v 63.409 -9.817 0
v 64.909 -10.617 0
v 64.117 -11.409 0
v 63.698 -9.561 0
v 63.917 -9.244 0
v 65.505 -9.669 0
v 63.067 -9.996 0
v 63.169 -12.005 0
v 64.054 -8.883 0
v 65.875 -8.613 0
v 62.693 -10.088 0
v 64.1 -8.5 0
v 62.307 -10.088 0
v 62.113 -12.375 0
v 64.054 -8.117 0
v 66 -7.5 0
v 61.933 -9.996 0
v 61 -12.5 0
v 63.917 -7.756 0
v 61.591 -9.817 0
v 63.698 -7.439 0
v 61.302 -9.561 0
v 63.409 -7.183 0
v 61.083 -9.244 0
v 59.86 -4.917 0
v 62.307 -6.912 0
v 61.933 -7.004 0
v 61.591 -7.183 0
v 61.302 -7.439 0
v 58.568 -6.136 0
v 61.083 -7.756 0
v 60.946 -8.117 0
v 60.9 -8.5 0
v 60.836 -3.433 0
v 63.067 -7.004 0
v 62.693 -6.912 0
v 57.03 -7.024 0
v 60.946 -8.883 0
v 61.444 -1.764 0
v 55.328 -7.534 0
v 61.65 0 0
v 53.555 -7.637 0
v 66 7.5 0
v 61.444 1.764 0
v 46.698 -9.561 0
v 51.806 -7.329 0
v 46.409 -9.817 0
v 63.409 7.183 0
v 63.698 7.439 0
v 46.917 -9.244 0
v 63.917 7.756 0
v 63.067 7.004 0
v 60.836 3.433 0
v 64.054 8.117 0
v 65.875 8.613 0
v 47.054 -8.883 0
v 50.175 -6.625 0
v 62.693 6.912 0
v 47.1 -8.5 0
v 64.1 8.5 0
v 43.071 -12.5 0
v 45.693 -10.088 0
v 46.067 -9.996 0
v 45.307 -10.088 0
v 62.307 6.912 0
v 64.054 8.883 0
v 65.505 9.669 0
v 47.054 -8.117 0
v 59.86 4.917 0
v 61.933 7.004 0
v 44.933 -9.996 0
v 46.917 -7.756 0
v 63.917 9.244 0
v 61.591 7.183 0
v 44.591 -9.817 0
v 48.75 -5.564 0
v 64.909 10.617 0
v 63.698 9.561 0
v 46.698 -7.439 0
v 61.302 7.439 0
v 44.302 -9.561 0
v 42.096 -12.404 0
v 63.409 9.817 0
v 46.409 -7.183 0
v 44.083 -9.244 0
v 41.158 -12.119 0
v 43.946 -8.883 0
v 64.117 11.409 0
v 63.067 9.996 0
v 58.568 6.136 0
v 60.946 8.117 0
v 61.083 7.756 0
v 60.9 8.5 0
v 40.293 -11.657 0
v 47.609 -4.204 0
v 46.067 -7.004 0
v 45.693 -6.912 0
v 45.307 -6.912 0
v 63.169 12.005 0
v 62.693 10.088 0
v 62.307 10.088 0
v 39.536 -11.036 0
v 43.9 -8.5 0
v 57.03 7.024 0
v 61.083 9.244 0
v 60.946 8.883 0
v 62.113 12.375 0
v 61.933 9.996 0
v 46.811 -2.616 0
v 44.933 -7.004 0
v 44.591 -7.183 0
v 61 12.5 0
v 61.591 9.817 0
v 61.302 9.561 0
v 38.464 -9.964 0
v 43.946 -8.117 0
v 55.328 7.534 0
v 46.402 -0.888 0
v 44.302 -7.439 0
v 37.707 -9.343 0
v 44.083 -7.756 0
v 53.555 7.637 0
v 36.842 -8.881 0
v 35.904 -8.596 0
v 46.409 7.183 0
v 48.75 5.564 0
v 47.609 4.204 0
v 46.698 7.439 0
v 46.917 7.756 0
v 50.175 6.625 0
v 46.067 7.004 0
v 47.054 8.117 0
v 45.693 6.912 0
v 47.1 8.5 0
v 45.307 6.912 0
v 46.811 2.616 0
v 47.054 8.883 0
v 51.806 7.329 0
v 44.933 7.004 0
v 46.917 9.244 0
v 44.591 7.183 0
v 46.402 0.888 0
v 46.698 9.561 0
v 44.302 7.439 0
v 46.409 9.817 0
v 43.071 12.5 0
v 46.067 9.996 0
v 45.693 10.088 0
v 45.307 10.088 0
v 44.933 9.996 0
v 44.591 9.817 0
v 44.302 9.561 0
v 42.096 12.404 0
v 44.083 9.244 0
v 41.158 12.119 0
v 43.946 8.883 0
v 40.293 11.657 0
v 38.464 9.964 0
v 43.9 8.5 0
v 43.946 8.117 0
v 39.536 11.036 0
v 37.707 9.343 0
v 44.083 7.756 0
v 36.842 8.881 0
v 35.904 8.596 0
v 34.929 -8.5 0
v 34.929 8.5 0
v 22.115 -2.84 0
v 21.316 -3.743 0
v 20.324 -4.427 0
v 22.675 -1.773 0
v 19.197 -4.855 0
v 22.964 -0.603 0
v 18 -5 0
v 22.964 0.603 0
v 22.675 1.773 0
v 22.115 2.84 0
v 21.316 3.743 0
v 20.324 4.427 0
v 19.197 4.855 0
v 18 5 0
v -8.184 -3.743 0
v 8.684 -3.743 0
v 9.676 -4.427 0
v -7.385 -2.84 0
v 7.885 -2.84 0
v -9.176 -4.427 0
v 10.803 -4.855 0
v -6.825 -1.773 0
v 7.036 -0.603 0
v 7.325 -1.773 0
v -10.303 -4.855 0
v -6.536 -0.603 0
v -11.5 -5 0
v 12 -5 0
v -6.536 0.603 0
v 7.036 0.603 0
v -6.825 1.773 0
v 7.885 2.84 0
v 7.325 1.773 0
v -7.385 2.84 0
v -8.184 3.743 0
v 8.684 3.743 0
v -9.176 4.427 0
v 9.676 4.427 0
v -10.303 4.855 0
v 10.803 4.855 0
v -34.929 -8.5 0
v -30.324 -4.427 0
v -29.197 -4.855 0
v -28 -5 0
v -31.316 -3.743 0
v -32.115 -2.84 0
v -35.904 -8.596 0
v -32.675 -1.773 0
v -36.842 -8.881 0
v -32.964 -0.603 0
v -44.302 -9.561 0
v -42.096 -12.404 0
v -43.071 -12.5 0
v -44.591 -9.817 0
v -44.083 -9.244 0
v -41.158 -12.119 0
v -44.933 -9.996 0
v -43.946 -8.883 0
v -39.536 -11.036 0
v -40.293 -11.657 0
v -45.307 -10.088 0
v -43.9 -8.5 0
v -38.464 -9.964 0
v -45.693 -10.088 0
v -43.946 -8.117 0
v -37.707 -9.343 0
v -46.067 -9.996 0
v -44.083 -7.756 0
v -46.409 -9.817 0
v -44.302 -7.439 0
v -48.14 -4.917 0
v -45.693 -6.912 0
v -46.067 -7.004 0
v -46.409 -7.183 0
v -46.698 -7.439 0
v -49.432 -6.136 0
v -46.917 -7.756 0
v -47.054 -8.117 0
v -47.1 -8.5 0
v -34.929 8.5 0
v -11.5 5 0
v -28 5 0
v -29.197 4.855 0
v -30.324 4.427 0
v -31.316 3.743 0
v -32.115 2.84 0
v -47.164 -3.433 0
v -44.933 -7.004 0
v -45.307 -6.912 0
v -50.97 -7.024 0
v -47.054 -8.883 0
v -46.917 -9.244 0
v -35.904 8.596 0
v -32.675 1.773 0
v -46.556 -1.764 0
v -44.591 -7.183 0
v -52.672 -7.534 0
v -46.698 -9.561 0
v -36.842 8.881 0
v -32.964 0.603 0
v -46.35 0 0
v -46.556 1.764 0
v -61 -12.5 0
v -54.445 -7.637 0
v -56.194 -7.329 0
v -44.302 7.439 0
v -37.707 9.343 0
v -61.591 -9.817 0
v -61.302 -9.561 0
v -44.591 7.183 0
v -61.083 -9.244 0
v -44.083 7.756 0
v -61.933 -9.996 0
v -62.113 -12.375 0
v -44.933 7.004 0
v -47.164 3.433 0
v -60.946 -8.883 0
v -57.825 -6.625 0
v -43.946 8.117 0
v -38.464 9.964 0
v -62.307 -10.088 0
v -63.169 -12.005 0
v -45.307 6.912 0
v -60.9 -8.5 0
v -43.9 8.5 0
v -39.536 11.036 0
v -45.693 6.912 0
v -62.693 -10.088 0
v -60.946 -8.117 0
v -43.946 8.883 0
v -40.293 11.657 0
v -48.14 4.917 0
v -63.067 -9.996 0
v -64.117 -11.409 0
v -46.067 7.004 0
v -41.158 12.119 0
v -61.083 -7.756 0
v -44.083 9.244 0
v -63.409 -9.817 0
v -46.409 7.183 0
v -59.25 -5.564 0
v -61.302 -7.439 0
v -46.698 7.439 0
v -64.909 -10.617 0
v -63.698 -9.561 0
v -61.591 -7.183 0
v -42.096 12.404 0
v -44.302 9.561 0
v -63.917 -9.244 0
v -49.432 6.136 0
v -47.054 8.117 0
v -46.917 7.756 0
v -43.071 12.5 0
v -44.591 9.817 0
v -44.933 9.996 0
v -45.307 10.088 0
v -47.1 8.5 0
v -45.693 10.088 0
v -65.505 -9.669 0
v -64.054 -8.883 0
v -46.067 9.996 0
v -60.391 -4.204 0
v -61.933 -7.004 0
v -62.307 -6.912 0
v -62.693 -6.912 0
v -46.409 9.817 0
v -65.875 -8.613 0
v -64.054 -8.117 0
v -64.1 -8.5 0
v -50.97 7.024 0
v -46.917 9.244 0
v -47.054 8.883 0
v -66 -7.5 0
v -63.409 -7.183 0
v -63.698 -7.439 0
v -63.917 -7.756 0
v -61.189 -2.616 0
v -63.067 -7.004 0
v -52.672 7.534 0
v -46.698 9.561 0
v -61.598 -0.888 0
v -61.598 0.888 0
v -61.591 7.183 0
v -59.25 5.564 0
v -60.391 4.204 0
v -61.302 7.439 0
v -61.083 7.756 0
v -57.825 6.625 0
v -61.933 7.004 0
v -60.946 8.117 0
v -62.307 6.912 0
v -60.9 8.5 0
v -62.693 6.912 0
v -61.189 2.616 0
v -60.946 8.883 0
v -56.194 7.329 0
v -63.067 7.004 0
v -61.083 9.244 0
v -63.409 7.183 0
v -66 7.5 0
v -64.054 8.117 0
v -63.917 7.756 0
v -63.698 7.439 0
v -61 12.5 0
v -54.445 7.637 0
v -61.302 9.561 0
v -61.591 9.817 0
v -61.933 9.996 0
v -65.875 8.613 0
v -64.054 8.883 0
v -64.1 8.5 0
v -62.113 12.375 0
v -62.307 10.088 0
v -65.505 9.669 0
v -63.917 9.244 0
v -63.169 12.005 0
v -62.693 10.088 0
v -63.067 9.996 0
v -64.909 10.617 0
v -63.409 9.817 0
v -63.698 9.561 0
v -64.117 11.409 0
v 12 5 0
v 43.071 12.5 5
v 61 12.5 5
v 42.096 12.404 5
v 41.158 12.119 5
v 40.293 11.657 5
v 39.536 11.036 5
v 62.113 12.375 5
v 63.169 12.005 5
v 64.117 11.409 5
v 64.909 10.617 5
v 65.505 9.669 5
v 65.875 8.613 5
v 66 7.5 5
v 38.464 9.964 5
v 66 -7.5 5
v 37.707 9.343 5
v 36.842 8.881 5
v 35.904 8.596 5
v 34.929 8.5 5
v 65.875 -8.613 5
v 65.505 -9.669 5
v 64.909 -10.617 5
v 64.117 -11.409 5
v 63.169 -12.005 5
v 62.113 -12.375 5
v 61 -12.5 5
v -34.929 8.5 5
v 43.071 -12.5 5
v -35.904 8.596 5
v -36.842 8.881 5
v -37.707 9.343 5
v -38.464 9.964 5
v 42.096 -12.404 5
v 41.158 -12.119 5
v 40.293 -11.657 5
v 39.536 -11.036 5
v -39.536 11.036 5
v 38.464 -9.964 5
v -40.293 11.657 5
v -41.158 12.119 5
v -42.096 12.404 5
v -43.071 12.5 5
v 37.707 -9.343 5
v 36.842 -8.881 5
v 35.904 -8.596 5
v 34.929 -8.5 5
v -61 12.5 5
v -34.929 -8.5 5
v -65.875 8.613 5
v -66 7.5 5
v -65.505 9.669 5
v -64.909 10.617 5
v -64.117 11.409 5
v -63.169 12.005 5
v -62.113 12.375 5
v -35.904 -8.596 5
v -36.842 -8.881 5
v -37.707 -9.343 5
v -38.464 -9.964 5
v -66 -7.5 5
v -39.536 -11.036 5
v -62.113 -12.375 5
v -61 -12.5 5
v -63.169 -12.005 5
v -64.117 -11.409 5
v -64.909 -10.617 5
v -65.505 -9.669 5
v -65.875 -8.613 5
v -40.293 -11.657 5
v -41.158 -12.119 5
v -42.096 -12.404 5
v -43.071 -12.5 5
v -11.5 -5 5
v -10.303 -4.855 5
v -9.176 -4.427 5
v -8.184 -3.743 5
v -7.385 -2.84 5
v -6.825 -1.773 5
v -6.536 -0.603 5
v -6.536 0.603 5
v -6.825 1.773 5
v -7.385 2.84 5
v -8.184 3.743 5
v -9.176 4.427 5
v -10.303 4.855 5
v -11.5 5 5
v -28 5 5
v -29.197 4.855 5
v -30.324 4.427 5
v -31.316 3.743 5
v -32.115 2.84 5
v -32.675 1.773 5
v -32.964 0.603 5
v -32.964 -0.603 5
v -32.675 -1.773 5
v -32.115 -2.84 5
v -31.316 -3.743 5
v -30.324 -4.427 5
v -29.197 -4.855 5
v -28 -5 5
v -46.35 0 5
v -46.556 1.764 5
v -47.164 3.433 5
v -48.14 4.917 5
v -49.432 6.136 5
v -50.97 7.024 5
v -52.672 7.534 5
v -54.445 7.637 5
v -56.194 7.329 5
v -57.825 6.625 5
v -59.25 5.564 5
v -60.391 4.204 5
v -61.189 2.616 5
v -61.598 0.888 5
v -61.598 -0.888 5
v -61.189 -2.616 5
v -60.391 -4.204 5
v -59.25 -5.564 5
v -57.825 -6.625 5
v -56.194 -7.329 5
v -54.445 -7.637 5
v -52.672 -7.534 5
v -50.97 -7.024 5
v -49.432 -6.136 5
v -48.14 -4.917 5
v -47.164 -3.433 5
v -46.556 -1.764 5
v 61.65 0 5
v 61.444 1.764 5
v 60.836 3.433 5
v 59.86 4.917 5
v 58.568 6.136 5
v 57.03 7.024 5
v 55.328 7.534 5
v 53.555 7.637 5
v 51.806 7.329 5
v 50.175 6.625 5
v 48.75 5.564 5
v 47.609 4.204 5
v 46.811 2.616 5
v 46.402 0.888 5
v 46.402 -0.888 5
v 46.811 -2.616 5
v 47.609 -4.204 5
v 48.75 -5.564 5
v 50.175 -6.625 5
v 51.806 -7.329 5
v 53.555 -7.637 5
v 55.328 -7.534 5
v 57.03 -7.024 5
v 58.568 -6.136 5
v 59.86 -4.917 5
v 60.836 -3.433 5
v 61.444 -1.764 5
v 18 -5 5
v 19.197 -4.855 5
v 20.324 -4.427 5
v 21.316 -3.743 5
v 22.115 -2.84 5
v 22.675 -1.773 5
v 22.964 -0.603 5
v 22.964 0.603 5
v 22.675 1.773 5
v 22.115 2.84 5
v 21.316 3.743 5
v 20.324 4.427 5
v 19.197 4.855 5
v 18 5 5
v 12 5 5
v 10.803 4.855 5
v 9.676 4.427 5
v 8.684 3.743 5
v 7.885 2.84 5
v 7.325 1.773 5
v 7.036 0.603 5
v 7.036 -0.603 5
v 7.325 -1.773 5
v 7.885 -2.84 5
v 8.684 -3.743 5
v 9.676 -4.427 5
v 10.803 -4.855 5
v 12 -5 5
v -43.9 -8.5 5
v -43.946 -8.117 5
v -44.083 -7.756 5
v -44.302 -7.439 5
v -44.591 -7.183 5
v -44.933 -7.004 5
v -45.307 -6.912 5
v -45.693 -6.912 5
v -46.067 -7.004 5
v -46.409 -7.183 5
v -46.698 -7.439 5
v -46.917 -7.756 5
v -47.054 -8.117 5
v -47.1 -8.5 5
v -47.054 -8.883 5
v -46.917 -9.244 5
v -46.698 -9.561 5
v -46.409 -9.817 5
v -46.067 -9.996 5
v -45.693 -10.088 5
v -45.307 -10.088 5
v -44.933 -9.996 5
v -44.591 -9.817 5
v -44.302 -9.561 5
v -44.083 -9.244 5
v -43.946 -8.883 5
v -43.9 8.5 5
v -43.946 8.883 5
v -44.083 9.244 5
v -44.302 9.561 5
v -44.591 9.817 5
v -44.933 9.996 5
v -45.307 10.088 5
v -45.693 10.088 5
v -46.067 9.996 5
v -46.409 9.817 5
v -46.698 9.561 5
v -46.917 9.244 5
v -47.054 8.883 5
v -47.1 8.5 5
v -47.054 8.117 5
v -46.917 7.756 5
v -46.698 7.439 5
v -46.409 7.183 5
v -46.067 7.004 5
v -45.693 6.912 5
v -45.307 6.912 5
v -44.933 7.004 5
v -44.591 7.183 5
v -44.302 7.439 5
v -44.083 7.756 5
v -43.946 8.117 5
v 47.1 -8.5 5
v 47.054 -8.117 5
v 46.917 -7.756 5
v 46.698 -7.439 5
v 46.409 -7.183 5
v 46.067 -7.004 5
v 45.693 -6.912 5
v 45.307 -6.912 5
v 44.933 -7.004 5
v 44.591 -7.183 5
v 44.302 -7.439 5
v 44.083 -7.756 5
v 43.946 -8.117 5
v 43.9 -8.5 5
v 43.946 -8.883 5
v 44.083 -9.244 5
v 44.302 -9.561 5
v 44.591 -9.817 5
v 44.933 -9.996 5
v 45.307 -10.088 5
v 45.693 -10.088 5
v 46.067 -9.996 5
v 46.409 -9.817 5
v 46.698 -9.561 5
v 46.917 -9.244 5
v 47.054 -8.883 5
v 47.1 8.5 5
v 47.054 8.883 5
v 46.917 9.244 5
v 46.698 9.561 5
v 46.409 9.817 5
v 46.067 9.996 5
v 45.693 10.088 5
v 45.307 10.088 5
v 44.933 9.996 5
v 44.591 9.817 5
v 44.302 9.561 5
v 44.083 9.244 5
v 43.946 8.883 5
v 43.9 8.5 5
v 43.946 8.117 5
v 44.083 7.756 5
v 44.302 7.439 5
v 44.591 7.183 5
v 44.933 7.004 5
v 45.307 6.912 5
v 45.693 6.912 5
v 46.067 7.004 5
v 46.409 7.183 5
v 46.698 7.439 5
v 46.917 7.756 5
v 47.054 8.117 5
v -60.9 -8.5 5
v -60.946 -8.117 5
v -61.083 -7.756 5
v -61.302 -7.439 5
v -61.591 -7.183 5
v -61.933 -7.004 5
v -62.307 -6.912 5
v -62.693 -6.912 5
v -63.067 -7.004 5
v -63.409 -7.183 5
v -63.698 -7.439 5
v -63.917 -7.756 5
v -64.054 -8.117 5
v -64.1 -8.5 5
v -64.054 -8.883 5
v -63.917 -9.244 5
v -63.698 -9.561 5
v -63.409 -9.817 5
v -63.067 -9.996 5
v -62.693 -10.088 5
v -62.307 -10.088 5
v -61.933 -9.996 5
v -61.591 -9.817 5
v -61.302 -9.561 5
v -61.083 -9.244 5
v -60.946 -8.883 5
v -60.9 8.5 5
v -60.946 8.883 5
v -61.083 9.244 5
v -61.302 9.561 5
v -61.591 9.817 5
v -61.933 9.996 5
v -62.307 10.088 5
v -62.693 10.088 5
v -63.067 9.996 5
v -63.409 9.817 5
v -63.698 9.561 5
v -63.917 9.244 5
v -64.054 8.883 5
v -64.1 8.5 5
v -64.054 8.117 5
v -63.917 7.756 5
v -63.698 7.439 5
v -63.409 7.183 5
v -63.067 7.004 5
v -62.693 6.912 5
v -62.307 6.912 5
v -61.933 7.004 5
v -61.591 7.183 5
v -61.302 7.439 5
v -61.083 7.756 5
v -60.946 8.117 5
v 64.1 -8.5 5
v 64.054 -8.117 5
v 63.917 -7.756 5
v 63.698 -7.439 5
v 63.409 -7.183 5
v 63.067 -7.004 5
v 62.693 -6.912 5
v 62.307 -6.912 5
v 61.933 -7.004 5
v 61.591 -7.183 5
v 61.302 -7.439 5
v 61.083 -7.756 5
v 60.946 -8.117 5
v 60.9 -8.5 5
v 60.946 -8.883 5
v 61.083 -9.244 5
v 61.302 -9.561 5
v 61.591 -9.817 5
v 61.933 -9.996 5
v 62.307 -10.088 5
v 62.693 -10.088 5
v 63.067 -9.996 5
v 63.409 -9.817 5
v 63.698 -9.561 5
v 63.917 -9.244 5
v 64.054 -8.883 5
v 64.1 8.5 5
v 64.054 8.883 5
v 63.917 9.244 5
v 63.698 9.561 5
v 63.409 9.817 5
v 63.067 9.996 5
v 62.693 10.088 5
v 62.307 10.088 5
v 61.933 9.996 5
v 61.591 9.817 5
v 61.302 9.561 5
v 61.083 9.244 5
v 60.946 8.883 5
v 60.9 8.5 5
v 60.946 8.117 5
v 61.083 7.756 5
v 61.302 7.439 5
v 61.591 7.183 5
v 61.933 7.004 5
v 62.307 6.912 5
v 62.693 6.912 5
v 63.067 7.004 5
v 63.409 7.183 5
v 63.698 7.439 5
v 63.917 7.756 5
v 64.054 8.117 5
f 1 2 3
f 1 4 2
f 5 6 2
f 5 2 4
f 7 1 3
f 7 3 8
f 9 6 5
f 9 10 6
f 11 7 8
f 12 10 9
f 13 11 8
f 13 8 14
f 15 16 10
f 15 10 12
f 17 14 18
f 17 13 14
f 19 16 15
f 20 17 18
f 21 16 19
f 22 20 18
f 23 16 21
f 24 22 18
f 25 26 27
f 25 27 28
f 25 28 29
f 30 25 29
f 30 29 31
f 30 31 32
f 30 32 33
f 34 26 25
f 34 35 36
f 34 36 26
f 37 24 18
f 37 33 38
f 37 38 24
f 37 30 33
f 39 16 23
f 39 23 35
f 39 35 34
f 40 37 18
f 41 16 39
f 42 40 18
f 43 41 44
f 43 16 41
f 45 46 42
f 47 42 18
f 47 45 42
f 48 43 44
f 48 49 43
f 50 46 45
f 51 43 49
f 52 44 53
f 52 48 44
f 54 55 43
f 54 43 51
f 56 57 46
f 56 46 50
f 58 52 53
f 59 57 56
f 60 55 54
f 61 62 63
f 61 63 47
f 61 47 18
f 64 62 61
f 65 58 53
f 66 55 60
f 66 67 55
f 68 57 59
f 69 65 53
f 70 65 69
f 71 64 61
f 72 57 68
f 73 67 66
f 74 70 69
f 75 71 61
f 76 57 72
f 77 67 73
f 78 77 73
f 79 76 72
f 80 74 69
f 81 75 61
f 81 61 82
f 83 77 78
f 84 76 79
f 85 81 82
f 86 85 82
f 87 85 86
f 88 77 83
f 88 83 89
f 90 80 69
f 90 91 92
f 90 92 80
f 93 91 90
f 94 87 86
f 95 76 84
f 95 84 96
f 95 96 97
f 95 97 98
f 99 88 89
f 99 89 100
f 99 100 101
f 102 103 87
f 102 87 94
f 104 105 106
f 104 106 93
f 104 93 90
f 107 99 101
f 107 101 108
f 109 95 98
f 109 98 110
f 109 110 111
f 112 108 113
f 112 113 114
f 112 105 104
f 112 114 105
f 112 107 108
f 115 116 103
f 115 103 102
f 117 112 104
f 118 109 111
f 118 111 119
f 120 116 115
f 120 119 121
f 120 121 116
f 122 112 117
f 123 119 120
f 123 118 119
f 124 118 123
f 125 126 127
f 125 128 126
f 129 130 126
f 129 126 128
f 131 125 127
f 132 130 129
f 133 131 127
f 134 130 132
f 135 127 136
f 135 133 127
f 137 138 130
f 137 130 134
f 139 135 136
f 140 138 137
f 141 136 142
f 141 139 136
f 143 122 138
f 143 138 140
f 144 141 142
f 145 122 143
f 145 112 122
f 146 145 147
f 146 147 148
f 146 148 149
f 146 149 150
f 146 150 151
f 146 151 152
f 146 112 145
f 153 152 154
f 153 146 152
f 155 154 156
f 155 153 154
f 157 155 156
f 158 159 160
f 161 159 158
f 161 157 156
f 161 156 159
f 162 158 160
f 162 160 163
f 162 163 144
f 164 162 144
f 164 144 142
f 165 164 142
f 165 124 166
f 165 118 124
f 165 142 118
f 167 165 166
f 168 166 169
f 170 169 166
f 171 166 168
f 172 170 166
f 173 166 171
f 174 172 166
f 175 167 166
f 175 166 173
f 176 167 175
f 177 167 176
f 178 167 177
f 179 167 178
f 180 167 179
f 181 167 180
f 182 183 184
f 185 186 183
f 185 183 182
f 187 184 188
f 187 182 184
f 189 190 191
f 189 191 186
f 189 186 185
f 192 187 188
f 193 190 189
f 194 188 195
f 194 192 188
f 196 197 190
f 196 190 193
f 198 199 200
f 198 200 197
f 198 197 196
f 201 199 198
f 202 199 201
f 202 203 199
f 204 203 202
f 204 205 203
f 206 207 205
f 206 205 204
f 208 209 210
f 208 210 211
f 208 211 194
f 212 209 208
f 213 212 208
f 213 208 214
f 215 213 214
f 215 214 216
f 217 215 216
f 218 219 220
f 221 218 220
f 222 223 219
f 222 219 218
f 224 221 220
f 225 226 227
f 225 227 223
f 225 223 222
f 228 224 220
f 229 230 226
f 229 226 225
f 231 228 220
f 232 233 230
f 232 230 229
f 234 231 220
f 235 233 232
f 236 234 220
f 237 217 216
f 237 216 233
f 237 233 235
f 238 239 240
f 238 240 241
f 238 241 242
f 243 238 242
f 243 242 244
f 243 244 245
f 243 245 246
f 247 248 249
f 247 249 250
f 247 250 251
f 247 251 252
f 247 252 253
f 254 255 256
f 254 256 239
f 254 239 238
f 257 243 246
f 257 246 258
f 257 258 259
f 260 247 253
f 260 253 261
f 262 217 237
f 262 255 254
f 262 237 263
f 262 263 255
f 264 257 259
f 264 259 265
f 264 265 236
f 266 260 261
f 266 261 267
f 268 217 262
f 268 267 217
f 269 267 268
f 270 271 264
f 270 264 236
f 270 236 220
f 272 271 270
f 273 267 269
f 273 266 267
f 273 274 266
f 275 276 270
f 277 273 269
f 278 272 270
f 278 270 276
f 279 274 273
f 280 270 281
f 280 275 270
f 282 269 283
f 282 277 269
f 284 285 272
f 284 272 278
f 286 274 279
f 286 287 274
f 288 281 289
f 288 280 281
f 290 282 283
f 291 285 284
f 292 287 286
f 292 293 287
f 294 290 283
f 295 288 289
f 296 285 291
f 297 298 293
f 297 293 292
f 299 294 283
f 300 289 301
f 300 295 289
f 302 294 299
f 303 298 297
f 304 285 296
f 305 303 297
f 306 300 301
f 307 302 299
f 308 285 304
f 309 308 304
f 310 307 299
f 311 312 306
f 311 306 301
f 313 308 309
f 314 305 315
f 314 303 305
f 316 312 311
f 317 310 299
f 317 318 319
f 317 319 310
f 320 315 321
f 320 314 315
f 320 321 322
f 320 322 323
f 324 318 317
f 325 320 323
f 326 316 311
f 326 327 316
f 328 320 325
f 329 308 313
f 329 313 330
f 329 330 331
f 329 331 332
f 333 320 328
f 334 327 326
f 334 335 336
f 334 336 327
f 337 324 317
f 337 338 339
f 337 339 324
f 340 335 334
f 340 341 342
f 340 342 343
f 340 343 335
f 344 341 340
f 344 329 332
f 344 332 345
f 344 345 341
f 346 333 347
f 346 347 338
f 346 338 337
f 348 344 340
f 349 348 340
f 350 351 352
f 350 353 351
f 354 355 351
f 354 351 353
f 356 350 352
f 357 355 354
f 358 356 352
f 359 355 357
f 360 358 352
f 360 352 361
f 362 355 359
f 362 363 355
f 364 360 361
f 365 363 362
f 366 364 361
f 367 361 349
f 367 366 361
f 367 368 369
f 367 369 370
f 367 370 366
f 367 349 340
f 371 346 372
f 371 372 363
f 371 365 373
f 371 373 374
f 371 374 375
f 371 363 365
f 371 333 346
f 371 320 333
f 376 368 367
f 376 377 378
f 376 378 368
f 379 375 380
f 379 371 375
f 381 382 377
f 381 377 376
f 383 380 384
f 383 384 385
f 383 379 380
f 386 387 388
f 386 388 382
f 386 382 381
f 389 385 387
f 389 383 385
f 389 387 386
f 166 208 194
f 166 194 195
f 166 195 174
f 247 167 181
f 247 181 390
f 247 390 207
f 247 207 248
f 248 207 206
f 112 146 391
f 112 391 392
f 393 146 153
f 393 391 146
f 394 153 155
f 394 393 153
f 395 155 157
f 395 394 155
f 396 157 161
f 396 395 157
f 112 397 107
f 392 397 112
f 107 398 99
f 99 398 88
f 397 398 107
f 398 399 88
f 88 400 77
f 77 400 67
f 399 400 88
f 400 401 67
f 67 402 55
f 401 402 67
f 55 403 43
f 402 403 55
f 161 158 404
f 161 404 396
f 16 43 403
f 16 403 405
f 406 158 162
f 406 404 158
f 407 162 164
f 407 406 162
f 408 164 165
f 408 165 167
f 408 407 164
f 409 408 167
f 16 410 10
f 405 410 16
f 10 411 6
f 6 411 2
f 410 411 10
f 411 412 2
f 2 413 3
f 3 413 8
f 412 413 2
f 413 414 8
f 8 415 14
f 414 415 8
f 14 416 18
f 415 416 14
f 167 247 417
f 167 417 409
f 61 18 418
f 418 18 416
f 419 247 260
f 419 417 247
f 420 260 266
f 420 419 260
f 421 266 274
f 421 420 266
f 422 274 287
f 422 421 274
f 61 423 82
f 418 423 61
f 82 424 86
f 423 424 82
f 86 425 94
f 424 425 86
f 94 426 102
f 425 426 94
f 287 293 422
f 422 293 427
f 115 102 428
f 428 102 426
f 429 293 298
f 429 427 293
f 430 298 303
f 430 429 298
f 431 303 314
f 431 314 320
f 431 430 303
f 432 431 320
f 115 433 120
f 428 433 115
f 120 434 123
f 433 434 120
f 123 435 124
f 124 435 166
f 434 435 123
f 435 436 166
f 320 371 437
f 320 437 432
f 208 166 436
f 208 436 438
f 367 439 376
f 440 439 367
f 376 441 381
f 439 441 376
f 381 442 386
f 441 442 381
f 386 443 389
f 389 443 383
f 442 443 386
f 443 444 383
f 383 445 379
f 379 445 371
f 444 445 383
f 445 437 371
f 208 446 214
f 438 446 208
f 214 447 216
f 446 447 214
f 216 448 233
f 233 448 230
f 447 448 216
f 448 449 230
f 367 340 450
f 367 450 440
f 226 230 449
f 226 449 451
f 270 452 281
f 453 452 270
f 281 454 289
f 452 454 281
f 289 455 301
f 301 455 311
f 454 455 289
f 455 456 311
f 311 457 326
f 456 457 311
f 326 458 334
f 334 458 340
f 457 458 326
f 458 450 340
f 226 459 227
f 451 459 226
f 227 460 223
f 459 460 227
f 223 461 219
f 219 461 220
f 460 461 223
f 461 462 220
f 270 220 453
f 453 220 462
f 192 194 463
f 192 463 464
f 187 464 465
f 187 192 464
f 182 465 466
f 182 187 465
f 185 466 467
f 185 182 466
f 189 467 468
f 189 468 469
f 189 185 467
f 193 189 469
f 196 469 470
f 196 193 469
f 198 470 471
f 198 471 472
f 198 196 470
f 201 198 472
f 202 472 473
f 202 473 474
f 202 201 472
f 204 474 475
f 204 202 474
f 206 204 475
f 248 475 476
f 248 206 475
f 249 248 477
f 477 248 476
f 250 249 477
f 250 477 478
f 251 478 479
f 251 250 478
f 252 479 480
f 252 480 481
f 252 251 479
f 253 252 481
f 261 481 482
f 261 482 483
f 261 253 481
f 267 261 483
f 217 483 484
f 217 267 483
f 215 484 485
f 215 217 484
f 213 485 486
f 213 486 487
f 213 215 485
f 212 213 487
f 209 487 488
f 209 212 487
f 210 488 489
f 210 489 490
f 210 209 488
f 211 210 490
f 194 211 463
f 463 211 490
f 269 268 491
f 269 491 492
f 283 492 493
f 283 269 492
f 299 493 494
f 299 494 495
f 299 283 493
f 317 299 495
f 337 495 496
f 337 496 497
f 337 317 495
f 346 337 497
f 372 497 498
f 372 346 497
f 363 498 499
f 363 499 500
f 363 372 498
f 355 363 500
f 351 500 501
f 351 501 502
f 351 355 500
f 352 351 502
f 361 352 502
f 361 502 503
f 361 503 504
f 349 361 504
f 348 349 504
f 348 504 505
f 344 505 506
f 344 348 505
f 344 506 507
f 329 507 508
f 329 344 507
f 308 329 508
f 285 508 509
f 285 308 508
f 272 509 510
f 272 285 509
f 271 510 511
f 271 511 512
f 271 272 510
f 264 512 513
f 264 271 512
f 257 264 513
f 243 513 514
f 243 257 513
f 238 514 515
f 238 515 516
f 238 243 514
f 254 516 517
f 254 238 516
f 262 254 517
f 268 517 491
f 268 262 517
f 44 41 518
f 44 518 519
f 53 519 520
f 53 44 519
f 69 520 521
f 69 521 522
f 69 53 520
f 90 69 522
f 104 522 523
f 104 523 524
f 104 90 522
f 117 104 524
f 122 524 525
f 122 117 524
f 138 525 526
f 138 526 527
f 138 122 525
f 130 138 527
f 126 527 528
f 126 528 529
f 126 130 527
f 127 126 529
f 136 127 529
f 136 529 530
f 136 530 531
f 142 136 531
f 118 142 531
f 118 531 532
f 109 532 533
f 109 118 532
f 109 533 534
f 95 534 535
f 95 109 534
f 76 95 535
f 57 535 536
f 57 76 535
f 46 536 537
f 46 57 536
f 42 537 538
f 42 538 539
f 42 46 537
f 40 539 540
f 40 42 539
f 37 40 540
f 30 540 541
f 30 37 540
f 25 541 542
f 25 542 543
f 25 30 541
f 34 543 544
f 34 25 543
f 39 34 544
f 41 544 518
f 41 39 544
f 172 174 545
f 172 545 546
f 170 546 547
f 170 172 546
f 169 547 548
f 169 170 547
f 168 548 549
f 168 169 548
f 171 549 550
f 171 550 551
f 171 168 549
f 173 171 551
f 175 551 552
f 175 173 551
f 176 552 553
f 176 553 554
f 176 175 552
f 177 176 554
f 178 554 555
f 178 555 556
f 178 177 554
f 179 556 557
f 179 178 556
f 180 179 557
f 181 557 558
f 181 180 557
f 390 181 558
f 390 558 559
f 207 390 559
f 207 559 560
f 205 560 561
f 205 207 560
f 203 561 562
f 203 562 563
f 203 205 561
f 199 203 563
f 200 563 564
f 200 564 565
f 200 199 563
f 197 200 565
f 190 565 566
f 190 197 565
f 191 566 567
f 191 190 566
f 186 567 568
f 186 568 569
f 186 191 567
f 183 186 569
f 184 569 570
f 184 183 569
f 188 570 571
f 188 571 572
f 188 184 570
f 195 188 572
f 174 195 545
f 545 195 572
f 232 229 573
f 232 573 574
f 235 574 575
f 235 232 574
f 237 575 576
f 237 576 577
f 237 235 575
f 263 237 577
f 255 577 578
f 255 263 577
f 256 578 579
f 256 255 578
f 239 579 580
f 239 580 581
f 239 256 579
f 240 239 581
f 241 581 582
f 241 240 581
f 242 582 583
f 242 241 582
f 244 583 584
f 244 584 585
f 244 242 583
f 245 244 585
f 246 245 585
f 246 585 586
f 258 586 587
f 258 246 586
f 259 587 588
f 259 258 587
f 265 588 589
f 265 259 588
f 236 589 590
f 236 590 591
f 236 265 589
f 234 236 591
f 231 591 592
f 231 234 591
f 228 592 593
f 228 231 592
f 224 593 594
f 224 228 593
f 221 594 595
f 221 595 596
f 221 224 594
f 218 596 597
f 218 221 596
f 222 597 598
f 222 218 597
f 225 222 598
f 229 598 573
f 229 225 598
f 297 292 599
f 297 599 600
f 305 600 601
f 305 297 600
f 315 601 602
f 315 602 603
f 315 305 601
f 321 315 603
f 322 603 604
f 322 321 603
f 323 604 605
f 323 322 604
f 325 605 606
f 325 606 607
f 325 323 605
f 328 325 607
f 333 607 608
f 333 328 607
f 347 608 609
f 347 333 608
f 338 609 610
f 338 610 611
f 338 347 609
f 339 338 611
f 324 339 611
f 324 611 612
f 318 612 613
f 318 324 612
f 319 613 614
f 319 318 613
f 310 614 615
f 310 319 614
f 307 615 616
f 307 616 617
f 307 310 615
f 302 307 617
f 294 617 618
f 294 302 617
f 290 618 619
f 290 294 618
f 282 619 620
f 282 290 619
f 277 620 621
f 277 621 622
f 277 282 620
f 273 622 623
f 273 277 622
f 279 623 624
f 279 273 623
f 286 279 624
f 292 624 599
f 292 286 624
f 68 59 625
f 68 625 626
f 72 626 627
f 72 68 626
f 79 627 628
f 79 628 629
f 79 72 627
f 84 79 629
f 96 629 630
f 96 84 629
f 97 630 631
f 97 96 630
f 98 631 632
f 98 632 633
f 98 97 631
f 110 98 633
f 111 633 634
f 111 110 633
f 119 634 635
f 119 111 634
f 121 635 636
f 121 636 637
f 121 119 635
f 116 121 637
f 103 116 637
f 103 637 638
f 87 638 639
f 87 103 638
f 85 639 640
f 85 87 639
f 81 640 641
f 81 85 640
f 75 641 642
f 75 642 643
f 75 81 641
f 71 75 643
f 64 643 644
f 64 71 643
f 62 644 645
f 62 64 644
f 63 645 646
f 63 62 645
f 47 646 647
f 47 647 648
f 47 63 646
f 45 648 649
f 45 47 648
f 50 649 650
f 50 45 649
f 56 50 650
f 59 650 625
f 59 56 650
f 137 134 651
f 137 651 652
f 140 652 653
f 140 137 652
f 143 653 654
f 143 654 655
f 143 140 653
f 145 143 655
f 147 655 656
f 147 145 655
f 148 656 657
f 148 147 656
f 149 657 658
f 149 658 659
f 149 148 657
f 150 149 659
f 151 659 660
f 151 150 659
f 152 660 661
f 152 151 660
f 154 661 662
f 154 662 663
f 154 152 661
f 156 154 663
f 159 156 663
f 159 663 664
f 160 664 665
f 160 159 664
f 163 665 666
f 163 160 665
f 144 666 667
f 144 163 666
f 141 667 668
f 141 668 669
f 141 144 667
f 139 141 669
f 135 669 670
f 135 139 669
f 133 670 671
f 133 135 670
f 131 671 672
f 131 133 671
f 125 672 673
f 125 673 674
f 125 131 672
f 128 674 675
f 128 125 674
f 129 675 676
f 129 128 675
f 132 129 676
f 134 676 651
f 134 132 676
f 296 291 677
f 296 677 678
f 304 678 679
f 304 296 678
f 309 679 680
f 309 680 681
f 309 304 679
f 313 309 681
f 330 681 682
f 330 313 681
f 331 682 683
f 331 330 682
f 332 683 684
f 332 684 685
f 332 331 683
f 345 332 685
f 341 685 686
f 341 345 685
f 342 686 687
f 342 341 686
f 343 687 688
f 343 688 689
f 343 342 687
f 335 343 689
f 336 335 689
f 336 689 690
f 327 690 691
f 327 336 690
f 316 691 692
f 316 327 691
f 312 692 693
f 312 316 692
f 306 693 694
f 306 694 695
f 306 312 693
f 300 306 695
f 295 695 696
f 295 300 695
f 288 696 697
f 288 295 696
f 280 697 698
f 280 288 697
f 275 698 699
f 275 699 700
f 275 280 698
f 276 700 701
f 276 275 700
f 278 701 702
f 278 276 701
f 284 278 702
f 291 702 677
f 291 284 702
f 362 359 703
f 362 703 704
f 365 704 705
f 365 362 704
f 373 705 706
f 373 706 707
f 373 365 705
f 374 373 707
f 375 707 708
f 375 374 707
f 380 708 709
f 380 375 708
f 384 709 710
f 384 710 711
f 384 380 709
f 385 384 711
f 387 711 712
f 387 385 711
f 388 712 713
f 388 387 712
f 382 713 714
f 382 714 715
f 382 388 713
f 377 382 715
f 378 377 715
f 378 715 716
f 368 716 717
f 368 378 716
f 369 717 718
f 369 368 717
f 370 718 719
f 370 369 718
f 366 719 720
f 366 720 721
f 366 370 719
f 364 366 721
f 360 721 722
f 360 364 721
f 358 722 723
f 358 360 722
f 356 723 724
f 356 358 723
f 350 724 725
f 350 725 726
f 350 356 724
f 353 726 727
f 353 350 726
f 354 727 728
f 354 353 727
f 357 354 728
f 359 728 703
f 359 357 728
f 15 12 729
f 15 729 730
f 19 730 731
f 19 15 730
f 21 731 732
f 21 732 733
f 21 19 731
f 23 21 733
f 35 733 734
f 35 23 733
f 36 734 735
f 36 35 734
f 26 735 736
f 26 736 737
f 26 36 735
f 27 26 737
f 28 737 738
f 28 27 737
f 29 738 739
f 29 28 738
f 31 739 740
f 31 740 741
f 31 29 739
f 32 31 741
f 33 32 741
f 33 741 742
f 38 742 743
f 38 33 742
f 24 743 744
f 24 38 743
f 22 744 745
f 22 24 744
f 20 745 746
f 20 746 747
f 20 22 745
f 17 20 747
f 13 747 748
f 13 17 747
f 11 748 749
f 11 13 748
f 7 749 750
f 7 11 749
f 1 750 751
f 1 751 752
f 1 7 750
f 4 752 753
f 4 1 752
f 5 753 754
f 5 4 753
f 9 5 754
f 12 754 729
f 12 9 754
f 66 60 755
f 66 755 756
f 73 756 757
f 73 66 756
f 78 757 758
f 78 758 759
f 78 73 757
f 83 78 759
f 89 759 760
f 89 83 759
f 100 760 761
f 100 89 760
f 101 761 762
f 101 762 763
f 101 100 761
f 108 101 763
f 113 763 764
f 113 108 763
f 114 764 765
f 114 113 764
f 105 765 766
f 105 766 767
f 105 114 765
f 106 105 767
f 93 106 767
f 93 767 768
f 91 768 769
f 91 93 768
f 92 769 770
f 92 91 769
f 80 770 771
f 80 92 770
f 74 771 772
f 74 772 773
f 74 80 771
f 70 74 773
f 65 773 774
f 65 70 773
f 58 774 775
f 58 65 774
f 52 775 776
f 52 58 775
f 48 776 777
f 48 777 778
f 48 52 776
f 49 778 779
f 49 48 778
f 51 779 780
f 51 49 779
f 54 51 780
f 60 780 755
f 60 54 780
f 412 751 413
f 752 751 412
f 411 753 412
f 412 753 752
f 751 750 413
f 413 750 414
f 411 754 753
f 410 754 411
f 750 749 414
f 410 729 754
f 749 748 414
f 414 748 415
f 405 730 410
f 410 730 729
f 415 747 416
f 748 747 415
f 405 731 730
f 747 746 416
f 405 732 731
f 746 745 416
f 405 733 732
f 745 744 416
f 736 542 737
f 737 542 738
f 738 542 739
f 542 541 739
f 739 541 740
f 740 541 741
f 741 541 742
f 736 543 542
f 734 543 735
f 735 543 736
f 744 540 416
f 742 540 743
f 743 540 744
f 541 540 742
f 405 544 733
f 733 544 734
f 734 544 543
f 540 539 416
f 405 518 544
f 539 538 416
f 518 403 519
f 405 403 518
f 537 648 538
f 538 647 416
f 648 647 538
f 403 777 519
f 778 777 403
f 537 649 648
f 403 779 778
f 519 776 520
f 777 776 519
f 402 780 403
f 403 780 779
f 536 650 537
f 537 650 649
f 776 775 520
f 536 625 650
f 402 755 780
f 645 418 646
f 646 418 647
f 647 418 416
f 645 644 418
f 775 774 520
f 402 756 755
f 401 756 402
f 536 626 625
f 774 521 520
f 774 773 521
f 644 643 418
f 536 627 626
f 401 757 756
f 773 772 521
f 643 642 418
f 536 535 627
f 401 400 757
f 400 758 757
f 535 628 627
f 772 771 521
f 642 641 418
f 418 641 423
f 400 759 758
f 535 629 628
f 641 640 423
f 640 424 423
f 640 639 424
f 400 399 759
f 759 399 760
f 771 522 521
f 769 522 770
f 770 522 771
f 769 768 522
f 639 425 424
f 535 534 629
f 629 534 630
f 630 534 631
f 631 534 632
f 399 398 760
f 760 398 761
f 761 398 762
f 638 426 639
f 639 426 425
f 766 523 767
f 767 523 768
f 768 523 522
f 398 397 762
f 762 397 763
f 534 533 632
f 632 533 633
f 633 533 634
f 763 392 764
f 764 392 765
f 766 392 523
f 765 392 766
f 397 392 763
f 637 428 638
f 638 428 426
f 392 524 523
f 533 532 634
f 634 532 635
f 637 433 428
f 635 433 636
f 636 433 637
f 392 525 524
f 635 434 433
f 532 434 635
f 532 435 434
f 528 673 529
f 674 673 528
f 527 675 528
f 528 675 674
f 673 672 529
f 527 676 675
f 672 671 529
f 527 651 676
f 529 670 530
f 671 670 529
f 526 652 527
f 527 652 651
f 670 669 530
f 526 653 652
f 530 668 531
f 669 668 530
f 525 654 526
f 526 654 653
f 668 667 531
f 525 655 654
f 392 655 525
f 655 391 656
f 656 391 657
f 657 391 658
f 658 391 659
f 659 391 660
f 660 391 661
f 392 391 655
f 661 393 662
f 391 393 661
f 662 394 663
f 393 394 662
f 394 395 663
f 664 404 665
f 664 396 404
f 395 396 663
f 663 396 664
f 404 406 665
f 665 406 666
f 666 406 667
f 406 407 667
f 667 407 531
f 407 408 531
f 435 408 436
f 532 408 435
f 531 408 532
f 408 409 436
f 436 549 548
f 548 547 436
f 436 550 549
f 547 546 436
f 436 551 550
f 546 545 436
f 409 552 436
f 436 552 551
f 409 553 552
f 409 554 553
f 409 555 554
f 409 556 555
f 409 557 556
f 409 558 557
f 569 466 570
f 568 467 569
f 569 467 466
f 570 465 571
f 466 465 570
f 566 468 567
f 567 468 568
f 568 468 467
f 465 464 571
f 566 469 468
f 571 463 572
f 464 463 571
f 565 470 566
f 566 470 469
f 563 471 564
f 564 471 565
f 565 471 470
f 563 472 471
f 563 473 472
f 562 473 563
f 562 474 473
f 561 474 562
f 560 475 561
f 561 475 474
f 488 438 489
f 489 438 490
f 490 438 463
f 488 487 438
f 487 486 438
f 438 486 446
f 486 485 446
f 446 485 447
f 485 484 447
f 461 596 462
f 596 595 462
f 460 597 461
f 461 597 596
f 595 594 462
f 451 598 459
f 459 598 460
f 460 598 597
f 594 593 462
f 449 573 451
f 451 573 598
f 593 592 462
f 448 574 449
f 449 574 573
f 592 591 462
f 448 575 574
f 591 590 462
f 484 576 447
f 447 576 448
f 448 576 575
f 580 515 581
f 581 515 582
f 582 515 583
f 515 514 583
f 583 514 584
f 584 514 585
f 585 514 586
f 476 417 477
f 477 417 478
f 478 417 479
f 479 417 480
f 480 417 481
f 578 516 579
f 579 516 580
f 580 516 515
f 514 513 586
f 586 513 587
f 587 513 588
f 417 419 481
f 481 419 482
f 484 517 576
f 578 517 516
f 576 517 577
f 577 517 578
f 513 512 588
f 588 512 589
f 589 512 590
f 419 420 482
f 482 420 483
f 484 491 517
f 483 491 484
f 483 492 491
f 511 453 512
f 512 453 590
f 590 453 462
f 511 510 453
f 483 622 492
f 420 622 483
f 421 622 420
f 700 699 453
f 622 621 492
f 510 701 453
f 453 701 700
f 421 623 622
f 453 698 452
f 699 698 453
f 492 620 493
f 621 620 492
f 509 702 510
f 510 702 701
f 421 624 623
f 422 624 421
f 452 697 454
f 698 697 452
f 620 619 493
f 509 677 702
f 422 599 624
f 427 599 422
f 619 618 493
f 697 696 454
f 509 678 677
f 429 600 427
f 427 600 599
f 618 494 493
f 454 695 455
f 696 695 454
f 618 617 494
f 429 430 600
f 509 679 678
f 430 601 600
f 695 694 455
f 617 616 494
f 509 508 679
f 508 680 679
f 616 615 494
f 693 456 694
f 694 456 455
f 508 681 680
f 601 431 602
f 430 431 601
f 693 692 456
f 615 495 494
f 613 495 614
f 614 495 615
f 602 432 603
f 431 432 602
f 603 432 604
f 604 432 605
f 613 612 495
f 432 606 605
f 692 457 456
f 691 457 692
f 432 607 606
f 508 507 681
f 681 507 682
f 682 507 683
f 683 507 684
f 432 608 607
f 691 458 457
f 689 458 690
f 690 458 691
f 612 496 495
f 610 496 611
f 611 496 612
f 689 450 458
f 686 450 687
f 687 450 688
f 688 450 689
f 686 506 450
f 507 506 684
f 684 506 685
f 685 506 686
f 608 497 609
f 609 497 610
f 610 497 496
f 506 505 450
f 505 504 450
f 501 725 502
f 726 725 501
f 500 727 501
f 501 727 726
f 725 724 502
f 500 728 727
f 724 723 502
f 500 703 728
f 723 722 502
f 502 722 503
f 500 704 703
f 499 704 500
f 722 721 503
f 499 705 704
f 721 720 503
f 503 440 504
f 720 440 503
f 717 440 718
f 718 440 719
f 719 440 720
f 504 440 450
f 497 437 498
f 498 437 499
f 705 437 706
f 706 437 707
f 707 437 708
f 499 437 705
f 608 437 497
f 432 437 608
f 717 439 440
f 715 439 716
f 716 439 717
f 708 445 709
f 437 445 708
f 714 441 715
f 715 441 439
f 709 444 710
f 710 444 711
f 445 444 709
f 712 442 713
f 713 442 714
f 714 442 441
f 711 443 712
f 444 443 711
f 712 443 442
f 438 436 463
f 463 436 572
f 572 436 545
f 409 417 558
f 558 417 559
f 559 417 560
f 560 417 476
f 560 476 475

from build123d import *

# Parameters (mm, degrees)
SKETCH_R    = 7.65
SKETCH_R_2  = 1.6
PAD_DEPTH   = 5
FILLET_R    = 5
FILLET001_R = 5
FILLET002_R = 5


with BuildPart() as part:
    # Sketch → Pad (new body)
    with BuildSketch(Plane.XY):
        Polygon((66, 12.5), (66, -12.5), (41, -12.5), (37, -8.5), (-37, -8.5), (-41, -12.5), (-66, -12.5), (-66, 12.5), (-41, 12.5), (-37, 8.5), (37, 8.5), (41, 12.5), align=None)
        with Locations((54, 0)):
            Circle(SKETCH_R, mode=Mode.SUBTRACT)
        with Locations((45.5, 8.5)):
            Circle(SKETCH_R_2, mode=Mode.SUBTRACT)
        with Locations((62.5, 8.5)):
            Circle(SKETCH_R_2, mode=Mode.SUBTRACT)
        with Locations((62.5, -8.5)):
            Circle(SKETCH_R_2, mode=Mode.SUBTRACT)
        with Locations((45.5, -8.5)):
            Circle(SKETCH_R_2, mode=Mode.SUBTRACT)
        with Locations((-54, 0)):
            Circle(SKETCH_R, mode=Mode.SUBTRACT)
        with Locations((-45.5, 8.5)):
            Circle(SKETCH_R_2, mode=Mode.SUBTRACT)
        with Locations((-62.5, 8.5)):
            Circle(SKETCH_R_2, mode=Mode.SUBTRACT)
        with Locations((-62.5, -8.5)):
            Circle(SKETCH_R_2, mode=Mode.SUBTRACT)
        with Locations((-45.5, -8.5)):
            Circle(SKETCH_R_2, mode=Mode.SUBTRACT)
        with BuildLine():
            ThreePointArc((-28, 5), (-33, 0), (-28, -5))
            Line((-11.5, -5), (-28, -5))
            ThreePointArc((-11.5, -5), (-6.5, 0), (-11.5, 5))
            Line((-28, 5), (-11.5, 5))
        make_face(mode=Mode.SUBTRACT)
        with BuildLine():
            ThreePointArc((18, -5), (23, 0), (18, 5))
            Line((18, 5), (12, 5))
            ThreePointArc((12, 5), (7, 0), (12, -5))
            Line((18, -5), (12, -5))
        make_face(mode=Mode.SUBTRACT)
    extrude(amount=PAD_DEPTH)

    # Fillet
    fillet_edges = [part.edges().sort_by_distance(p)[0] for p in [
        (66, -12.5, 2.5),
        (66, 12.5, 2.5),
        (-66, -12.5, 2.5),
        (-66, 12.5, 2.5),
    ]]
    fillet(fillet_edges, radius=FILLET_R)

    # Fillet001
    fillet001_edges = [part.edges().sort_by_distance(p)[0] for p in [
        (-41, -12.5, 2.5),
        (-37, -8.5, 2.5),
        (37, -8.5, 2.5),
        (41, -12.5, 2.5),
    ]]
    fillet(fillet001_edges, radius=FILLET001_R)

    # Fillet002
    fillet002_edges = [part.edges().sort_by_distance(p)[0] for p in [
        (41, 12.5, 2.5),
        (37, 8.5, 2.5),
        (-41, 12.5, 2.5),
        (-37, 8.5, 2.5),
    ]]
    fillet(fillet002_edges, radius=FILLET002_R)


solid = part.part
